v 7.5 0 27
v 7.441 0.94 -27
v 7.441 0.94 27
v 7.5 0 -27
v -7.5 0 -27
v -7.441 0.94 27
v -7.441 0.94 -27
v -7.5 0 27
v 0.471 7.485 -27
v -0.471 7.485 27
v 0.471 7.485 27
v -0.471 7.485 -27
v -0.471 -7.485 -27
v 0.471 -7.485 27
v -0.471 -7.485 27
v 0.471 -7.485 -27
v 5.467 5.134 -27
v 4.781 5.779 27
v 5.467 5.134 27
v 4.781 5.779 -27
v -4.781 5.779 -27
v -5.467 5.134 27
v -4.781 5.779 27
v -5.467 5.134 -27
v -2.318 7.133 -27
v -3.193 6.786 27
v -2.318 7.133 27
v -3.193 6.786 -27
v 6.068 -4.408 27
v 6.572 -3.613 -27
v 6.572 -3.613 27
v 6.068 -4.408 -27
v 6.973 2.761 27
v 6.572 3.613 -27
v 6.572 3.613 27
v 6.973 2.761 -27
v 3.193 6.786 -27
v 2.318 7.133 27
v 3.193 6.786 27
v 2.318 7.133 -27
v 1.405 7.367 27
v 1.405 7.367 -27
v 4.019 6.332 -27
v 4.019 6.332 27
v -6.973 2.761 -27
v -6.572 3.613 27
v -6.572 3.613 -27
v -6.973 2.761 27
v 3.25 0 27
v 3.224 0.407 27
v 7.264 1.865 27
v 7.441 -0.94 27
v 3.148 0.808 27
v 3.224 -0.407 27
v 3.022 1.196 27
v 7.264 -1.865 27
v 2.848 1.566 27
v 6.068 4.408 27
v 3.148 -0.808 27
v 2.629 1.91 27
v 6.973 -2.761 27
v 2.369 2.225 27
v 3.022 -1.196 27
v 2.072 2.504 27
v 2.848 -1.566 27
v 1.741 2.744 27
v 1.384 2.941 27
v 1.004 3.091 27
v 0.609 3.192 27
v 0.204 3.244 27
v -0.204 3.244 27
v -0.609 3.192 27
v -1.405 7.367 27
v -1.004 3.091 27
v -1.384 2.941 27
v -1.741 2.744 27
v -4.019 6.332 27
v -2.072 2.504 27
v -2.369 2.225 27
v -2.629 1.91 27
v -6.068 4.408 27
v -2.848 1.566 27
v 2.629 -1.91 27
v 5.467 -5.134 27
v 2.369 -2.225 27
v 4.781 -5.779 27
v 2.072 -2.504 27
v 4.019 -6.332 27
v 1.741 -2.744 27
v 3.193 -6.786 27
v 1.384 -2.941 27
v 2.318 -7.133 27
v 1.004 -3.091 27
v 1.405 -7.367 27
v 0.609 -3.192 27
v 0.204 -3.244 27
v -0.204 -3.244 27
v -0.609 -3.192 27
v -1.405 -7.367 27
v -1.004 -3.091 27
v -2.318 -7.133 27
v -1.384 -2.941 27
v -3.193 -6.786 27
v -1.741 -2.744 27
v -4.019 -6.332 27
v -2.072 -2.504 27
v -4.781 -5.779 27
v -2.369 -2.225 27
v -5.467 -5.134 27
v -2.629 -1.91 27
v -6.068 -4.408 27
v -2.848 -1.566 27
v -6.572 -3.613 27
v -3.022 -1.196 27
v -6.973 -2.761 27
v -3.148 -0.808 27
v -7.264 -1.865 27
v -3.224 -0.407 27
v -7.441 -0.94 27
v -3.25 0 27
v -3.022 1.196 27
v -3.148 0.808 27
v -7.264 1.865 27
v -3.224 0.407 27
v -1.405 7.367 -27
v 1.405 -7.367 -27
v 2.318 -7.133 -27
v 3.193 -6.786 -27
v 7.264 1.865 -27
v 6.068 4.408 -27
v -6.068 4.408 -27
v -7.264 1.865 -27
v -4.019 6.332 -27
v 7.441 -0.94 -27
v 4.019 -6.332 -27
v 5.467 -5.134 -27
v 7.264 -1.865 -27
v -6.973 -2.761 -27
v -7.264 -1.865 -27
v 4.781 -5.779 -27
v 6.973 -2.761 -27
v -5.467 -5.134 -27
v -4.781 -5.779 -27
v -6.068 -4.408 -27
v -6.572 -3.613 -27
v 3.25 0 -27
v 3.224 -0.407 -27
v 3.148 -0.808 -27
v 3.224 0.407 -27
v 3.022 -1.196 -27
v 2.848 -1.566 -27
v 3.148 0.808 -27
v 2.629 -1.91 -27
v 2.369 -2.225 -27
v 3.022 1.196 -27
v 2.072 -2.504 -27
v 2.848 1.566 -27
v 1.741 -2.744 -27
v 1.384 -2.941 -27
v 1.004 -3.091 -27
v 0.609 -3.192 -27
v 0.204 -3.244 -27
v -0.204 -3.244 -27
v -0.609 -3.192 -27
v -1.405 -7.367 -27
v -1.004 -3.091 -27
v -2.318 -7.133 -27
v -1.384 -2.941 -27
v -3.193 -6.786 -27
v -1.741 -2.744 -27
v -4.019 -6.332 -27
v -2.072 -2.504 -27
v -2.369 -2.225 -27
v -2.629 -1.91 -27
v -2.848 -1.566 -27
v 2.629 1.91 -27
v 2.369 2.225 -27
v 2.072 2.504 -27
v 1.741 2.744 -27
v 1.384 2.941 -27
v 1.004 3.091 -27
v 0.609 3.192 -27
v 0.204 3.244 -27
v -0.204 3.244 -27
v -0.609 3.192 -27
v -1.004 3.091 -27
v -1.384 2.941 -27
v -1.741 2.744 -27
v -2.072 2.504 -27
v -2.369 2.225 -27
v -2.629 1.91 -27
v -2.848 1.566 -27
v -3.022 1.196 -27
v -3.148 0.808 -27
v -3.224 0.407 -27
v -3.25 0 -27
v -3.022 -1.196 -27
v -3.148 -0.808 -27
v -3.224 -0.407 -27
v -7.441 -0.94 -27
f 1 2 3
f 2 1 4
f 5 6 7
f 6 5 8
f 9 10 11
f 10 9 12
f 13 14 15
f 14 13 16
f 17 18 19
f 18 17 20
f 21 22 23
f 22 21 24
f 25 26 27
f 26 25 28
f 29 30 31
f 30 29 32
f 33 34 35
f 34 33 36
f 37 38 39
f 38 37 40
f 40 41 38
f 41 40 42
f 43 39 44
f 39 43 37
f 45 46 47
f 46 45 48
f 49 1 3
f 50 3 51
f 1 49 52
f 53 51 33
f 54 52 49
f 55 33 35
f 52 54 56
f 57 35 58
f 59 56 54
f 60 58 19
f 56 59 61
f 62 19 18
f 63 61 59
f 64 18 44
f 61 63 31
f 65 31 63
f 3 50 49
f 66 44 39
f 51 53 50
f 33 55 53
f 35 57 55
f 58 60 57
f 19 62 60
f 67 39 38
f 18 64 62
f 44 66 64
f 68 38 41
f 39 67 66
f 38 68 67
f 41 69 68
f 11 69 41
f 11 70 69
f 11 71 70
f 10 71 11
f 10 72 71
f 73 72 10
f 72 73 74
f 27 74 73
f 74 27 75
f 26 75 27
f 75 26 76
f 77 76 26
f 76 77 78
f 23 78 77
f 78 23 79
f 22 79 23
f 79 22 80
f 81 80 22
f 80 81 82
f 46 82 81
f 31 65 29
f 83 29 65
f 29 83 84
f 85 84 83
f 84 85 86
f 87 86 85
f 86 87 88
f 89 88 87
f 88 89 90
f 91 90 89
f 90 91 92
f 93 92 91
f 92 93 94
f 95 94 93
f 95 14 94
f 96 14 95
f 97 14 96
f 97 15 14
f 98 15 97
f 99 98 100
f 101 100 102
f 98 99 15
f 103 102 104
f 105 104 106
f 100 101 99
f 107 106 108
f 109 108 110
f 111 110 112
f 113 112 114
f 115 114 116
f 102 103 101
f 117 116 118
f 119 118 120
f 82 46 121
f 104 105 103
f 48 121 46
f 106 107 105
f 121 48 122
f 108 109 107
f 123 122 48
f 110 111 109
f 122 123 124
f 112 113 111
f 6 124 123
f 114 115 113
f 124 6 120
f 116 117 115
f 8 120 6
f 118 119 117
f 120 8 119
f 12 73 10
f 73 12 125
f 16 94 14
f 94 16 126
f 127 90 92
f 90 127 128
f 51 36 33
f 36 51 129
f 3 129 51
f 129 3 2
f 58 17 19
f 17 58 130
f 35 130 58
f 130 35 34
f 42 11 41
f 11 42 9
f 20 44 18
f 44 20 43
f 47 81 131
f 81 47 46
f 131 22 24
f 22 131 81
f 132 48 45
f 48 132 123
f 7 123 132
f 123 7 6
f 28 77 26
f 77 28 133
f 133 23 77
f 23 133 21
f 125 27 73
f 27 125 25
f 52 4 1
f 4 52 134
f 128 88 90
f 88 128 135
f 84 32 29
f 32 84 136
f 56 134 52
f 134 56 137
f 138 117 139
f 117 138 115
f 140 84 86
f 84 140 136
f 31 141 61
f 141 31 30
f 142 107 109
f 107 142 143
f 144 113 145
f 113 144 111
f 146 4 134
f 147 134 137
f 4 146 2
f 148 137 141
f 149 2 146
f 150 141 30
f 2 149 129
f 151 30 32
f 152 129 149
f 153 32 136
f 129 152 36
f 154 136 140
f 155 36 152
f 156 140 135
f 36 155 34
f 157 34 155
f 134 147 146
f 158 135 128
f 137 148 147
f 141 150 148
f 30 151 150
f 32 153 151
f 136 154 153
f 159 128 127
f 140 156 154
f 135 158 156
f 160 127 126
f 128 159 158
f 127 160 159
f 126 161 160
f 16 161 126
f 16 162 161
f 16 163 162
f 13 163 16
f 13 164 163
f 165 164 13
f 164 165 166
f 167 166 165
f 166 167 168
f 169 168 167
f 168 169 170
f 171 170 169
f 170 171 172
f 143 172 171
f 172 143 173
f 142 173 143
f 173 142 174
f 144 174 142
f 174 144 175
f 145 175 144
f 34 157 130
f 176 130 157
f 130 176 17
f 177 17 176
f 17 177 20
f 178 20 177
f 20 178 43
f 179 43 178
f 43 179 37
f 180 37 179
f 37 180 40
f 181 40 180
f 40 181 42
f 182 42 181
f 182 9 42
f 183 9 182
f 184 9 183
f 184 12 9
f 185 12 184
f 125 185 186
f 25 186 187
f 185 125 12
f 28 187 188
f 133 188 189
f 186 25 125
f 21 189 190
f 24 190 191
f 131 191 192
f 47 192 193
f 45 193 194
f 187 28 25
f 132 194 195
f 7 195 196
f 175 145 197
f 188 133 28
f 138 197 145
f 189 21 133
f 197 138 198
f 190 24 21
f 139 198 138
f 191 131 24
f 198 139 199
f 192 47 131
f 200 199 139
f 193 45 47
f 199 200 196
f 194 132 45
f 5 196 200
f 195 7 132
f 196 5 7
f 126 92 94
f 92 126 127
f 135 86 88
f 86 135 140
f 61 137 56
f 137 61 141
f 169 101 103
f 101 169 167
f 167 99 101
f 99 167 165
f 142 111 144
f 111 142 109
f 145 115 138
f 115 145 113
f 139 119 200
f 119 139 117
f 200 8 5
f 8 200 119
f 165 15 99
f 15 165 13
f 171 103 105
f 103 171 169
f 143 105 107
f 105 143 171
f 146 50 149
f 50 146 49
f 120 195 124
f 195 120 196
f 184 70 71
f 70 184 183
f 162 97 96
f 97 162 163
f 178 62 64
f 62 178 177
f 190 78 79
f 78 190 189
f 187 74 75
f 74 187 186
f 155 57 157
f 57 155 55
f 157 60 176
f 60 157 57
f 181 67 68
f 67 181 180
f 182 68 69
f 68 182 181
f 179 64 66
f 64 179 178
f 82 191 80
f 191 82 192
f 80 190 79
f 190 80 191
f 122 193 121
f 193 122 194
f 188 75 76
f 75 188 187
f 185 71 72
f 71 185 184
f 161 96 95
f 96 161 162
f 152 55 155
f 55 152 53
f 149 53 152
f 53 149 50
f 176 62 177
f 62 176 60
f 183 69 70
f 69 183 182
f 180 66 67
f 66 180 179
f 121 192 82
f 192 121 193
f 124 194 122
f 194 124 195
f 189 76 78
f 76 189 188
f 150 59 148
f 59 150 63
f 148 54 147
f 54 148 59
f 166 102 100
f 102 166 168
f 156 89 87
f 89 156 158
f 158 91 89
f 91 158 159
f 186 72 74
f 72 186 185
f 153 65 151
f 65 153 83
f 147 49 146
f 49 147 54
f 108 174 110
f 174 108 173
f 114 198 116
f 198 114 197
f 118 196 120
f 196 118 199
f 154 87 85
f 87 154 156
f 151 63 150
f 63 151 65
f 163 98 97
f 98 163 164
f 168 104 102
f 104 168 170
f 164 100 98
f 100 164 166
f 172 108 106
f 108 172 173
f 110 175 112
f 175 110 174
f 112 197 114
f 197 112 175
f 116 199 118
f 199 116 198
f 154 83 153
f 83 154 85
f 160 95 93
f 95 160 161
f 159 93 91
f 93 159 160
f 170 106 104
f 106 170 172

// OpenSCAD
$fn = 50;


difference() {
	union() {
		translate(v = [0, 0, -27.0000000000]) {
			cylinder(h = 54, r = 7.5000000000);
		}
	}
	union() {
		translate(v = [0, 0, -100.0000000000]) {
			cylinder(h = 200, r = 3.2500000000);
		}
	}
}
